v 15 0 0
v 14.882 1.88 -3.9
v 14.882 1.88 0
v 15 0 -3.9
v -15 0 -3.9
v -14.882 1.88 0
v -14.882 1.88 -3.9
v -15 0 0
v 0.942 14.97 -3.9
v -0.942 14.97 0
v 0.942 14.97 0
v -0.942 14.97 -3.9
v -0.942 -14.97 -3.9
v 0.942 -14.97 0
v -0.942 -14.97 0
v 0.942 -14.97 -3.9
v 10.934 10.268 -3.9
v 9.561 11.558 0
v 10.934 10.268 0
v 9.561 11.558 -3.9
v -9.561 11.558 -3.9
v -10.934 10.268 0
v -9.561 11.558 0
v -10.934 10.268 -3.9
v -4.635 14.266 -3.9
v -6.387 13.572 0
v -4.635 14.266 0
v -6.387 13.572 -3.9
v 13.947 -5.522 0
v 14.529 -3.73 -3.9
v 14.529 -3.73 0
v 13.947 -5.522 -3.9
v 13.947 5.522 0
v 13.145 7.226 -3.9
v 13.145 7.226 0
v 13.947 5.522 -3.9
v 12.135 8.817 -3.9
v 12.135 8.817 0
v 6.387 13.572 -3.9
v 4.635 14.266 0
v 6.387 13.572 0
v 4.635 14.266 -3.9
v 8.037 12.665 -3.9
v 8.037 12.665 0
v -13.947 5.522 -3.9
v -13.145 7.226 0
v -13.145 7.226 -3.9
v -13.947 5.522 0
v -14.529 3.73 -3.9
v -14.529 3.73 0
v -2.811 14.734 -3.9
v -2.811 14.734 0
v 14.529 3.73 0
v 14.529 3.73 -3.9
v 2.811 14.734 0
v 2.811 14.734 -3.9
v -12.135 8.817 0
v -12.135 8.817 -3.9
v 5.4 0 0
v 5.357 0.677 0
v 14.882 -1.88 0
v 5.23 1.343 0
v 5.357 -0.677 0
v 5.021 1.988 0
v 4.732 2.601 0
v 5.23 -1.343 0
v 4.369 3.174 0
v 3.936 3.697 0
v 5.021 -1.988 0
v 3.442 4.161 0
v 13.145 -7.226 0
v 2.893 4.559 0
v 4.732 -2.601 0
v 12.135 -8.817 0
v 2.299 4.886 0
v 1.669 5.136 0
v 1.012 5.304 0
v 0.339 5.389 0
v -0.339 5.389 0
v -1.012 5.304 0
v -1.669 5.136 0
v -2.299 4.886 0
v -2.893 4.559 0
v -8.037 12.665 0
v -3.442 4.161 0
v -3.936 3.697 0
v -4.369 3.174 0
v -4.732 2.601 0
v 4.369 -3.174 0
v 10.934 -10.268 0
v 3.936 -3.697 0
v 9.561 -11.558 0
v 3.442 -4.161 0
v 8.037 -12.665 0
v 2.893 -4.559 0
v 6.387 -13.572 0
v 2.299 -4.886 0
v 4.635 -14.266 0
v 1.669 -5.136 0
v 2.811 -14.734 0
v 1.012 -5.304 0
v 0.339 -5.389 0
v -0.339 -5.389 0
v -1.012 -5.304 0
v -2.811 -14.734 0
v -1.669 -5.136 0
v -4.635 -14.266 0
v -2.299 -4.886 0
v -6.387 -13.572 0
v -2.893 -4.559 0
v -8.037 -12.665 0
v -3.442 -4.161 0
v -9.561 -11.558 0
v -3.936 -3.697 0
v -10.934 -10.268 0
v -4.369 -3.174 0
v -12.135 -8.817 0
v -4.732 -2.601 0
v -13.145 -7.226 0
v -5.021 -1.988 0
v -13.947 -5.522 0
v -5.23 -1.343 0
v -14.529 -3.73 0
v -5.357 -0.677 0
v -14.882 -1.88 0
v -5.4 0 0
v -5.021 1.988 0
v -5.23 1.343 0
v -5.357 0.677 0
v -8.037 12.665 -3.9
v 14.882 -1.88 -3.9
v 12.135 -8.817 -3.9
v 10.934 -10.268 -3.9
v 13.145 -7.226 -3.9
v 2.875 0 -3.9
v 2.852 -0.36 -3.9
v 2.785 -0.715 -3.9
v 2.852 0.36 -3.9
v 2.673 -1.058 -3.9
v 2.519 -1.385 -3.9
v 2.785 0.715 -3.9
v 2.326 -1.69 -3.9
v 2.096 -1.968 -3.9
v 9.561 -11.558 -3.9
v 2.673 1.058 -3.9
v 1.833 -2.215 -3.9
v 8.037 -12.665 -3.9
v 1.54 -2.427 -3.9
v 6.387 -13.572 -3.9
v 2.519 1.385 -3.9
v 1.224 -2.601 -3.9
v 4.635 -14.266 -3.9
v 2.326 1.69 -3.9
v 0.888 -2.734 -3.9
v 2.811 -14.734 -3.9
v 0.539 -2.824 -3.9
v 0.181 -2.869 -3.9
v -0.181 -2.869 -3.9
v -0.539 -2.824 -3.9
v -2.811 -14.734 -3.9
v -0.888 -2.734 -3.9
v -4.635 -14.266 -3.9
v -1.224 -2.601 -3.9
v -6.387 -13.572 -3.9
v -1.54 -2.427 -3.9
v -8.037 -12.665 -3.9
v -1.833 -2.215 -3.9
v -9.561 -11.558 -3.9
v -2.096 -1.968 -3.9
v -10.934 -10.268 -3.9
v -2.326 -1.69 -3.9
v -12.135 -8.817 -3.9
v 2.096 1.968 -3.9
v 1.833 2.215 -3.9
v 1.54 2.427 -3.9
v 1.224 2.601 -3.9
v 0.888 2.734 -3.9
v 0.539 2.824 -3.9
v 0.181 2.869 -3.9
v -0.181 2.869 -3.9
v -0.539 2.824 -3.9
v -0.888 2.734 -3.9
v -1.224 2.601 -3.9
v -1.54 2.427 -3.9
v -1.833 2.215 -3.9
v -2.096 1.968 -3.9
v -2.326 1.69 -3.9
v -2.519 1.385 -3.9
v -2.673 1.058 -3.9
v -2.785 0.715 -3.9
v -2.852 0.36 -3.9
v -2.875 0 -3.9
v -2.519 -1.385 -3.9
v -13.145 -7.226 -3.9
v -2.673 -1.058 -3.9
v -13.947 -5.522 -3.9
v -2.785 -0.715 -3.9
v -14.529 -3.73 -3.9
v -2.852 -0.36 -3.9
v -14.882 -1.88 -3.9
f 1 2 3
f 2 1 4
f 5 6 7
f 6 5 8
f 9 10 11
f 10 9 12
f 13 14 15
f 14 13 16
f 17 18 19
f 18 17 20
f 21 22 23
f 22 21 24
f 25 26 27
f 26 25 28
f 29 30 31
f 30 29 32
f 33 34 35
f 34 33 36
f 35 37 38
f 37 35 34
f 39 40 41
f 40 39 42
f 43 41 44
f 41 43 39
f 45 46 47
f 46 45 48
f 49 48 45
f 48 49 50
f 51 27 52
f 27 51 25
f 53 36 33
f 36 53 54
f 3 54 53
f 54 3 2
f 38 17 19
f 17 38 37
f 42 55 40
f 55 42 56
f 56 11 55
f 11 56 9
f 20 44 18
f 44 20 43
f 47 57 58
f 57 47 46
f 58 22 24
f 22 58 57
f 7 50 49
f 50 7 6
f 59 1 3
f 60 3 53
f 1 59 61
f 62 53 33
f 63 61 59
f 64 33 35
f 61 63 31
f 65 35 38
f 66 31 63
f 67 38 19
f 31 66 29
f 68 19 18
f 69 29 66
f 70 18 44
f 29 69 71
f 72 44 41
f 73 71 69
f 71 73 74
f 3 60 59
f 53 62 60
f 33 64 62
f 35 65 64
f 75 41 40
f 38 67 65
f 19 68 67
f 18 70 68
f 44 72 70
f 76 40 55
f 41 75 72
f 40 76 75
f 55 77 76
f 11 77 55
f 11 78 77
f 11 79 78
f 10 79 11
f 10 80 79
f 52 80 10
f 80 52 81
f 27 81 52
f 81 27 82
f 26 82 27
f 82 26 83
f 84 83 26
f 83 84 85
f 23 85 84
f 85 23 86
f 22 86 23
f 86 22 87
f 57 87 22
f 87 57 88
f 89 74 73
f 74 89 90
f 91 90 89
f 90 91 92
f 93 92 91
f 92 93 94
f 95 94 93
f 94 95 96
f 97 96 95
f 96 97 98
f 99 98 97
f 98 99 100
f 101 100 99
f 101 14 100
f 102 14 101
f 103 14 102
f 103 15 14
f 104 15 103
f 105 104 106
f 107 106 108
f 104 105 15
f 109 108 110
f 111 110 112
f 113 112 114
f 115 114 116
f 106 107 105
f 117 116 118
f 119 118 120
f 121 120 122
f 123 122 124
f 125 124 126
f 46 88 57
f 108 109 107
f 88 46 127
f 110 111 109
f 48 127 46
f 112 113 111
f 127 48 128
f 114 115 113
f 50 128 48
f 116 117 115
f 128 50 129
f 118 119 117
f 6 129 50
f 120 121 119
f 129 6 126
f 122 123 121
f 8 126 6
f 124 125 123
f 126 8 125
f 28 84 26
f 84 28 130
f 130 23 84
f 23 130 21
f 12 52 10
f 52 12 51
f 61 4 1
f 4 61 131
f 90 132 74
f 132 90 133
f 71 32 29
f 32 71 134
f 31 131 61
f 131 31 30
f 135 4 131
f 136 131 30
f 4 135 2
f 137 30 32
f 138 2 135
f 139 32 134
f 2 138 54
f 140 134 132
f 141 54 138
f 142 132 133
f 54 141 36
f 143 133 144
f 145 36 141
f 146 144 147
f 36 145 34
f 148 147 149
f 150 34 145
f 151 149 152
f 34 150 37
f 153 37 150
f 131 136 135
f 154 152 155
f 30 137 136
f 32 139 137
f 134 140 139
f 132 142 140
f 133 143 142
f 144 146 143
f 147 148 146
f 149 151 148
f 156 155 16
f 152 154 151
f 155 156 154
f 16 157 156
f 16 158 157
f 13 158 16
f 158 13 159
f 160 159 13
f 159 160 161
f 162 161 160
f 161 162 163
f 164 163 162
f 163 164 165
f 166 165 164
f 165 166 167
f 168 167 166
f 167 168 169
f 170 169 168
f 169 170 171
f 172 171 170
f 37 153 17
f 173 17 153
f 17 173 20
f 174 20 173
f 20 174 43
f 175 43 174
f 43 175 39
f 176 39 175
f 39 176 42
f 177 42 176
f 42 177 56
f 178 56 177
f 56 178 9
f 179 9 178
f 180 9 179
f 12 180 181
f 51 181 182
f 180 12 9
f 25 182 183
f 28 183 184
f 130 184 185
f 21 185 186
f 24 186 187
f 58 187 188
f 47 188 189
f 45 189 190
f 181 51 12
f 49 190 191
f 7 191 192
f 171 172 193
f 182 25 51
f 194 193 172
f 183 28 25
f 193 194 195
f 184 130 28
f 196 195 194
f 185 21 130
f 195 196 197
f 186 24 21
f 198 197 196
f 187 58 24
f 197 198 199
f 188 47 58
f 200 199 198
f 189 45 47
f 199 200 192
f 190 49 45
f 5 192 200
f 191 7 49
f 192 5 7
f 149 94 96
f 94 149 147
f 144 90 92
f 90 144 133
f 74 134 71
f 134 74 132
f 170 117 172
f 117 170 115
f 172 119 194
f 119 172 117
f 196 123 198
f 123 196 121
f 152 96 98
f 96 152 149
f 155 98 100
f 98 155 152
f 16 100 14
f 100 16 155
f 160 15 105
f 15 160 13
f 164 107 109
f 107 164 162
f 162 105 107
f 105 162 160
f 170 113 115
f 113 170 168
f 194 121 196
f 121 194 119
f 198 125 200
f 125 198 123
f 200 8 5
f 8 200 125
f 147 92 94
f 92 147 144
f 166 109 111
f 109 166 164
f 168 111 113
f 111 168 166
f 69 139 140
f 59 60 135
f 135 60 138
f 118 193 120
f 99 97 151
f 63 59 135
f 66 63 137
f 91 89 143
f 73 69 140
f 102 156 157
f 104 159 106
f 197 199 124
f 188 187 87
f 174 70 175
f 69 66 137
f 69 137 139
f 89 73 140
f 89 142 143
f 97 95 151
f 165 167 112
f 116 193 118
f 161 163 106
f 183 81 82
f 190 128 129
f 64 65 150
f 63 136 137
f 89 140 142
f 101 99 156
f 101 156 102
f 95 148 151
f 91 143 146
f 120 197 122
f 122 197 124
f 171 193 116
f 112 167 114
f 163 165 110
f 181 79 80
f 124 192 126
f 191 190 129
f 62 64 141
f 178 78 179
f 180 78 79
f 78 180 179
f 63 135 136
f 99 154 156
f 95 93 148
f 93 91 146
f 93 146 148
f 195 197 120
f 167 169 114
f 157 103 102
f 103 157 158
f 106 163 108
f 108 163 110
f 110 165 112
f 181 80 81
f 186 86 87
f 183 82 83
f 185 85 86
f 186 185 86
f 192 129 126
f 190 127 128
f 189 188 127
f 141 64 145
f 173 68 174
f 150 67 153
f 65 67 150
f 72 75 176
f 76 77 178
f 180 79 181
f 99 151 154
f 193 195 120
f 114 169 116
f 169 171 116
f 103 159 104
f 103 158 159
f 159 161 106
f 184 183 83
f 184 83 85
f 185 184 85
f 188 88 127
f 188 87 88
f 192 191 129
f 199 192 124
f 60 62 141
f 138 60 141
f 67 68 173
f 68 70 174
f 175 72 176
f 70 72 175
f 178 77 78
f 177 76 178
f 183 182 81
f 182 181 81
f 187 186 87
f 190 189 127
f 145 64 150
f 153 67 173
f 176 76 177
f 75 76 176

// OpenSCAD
$fn = 50;


difference() {
	union() {
		translate(v = [0, 0, -3.9000000000]) {
			cylinder(h = 3.9000000000, r = 15.0000000000);
		}
		translate(v = [0, 0, -6.9000000000]) {
			cylinder(h = 6.9000000000, r = 2.8750000000);
		}
	}
	union() {
		translate(v = [0, 0, 0]) {
			rotate(a = [0, 0, 0]) {
				difference() {
					union() {
						translate(v = [0, 0, -6.9000000000]) {
							cylinder(h = 6.9000000000, r = 2.6000000000);
						}
						translate(v = [0, 0, -3.9000000000]) {
							cylinder(h = 3.9000000000, r1 = 2.8750000000, r2 = 5.4000000000);
						}
						translate(v = [0, 0, -6.9000000000]) {
							cylinder(h = 6.9000000000, r = 2.8750000000);
						}
						translate(v = [0, 0, -6.9000000000]) {
							cylinder(h = 6.9000000000, r = 2.6000000000);
						}
					}
					union();
				}
			}
		}
	}
}
